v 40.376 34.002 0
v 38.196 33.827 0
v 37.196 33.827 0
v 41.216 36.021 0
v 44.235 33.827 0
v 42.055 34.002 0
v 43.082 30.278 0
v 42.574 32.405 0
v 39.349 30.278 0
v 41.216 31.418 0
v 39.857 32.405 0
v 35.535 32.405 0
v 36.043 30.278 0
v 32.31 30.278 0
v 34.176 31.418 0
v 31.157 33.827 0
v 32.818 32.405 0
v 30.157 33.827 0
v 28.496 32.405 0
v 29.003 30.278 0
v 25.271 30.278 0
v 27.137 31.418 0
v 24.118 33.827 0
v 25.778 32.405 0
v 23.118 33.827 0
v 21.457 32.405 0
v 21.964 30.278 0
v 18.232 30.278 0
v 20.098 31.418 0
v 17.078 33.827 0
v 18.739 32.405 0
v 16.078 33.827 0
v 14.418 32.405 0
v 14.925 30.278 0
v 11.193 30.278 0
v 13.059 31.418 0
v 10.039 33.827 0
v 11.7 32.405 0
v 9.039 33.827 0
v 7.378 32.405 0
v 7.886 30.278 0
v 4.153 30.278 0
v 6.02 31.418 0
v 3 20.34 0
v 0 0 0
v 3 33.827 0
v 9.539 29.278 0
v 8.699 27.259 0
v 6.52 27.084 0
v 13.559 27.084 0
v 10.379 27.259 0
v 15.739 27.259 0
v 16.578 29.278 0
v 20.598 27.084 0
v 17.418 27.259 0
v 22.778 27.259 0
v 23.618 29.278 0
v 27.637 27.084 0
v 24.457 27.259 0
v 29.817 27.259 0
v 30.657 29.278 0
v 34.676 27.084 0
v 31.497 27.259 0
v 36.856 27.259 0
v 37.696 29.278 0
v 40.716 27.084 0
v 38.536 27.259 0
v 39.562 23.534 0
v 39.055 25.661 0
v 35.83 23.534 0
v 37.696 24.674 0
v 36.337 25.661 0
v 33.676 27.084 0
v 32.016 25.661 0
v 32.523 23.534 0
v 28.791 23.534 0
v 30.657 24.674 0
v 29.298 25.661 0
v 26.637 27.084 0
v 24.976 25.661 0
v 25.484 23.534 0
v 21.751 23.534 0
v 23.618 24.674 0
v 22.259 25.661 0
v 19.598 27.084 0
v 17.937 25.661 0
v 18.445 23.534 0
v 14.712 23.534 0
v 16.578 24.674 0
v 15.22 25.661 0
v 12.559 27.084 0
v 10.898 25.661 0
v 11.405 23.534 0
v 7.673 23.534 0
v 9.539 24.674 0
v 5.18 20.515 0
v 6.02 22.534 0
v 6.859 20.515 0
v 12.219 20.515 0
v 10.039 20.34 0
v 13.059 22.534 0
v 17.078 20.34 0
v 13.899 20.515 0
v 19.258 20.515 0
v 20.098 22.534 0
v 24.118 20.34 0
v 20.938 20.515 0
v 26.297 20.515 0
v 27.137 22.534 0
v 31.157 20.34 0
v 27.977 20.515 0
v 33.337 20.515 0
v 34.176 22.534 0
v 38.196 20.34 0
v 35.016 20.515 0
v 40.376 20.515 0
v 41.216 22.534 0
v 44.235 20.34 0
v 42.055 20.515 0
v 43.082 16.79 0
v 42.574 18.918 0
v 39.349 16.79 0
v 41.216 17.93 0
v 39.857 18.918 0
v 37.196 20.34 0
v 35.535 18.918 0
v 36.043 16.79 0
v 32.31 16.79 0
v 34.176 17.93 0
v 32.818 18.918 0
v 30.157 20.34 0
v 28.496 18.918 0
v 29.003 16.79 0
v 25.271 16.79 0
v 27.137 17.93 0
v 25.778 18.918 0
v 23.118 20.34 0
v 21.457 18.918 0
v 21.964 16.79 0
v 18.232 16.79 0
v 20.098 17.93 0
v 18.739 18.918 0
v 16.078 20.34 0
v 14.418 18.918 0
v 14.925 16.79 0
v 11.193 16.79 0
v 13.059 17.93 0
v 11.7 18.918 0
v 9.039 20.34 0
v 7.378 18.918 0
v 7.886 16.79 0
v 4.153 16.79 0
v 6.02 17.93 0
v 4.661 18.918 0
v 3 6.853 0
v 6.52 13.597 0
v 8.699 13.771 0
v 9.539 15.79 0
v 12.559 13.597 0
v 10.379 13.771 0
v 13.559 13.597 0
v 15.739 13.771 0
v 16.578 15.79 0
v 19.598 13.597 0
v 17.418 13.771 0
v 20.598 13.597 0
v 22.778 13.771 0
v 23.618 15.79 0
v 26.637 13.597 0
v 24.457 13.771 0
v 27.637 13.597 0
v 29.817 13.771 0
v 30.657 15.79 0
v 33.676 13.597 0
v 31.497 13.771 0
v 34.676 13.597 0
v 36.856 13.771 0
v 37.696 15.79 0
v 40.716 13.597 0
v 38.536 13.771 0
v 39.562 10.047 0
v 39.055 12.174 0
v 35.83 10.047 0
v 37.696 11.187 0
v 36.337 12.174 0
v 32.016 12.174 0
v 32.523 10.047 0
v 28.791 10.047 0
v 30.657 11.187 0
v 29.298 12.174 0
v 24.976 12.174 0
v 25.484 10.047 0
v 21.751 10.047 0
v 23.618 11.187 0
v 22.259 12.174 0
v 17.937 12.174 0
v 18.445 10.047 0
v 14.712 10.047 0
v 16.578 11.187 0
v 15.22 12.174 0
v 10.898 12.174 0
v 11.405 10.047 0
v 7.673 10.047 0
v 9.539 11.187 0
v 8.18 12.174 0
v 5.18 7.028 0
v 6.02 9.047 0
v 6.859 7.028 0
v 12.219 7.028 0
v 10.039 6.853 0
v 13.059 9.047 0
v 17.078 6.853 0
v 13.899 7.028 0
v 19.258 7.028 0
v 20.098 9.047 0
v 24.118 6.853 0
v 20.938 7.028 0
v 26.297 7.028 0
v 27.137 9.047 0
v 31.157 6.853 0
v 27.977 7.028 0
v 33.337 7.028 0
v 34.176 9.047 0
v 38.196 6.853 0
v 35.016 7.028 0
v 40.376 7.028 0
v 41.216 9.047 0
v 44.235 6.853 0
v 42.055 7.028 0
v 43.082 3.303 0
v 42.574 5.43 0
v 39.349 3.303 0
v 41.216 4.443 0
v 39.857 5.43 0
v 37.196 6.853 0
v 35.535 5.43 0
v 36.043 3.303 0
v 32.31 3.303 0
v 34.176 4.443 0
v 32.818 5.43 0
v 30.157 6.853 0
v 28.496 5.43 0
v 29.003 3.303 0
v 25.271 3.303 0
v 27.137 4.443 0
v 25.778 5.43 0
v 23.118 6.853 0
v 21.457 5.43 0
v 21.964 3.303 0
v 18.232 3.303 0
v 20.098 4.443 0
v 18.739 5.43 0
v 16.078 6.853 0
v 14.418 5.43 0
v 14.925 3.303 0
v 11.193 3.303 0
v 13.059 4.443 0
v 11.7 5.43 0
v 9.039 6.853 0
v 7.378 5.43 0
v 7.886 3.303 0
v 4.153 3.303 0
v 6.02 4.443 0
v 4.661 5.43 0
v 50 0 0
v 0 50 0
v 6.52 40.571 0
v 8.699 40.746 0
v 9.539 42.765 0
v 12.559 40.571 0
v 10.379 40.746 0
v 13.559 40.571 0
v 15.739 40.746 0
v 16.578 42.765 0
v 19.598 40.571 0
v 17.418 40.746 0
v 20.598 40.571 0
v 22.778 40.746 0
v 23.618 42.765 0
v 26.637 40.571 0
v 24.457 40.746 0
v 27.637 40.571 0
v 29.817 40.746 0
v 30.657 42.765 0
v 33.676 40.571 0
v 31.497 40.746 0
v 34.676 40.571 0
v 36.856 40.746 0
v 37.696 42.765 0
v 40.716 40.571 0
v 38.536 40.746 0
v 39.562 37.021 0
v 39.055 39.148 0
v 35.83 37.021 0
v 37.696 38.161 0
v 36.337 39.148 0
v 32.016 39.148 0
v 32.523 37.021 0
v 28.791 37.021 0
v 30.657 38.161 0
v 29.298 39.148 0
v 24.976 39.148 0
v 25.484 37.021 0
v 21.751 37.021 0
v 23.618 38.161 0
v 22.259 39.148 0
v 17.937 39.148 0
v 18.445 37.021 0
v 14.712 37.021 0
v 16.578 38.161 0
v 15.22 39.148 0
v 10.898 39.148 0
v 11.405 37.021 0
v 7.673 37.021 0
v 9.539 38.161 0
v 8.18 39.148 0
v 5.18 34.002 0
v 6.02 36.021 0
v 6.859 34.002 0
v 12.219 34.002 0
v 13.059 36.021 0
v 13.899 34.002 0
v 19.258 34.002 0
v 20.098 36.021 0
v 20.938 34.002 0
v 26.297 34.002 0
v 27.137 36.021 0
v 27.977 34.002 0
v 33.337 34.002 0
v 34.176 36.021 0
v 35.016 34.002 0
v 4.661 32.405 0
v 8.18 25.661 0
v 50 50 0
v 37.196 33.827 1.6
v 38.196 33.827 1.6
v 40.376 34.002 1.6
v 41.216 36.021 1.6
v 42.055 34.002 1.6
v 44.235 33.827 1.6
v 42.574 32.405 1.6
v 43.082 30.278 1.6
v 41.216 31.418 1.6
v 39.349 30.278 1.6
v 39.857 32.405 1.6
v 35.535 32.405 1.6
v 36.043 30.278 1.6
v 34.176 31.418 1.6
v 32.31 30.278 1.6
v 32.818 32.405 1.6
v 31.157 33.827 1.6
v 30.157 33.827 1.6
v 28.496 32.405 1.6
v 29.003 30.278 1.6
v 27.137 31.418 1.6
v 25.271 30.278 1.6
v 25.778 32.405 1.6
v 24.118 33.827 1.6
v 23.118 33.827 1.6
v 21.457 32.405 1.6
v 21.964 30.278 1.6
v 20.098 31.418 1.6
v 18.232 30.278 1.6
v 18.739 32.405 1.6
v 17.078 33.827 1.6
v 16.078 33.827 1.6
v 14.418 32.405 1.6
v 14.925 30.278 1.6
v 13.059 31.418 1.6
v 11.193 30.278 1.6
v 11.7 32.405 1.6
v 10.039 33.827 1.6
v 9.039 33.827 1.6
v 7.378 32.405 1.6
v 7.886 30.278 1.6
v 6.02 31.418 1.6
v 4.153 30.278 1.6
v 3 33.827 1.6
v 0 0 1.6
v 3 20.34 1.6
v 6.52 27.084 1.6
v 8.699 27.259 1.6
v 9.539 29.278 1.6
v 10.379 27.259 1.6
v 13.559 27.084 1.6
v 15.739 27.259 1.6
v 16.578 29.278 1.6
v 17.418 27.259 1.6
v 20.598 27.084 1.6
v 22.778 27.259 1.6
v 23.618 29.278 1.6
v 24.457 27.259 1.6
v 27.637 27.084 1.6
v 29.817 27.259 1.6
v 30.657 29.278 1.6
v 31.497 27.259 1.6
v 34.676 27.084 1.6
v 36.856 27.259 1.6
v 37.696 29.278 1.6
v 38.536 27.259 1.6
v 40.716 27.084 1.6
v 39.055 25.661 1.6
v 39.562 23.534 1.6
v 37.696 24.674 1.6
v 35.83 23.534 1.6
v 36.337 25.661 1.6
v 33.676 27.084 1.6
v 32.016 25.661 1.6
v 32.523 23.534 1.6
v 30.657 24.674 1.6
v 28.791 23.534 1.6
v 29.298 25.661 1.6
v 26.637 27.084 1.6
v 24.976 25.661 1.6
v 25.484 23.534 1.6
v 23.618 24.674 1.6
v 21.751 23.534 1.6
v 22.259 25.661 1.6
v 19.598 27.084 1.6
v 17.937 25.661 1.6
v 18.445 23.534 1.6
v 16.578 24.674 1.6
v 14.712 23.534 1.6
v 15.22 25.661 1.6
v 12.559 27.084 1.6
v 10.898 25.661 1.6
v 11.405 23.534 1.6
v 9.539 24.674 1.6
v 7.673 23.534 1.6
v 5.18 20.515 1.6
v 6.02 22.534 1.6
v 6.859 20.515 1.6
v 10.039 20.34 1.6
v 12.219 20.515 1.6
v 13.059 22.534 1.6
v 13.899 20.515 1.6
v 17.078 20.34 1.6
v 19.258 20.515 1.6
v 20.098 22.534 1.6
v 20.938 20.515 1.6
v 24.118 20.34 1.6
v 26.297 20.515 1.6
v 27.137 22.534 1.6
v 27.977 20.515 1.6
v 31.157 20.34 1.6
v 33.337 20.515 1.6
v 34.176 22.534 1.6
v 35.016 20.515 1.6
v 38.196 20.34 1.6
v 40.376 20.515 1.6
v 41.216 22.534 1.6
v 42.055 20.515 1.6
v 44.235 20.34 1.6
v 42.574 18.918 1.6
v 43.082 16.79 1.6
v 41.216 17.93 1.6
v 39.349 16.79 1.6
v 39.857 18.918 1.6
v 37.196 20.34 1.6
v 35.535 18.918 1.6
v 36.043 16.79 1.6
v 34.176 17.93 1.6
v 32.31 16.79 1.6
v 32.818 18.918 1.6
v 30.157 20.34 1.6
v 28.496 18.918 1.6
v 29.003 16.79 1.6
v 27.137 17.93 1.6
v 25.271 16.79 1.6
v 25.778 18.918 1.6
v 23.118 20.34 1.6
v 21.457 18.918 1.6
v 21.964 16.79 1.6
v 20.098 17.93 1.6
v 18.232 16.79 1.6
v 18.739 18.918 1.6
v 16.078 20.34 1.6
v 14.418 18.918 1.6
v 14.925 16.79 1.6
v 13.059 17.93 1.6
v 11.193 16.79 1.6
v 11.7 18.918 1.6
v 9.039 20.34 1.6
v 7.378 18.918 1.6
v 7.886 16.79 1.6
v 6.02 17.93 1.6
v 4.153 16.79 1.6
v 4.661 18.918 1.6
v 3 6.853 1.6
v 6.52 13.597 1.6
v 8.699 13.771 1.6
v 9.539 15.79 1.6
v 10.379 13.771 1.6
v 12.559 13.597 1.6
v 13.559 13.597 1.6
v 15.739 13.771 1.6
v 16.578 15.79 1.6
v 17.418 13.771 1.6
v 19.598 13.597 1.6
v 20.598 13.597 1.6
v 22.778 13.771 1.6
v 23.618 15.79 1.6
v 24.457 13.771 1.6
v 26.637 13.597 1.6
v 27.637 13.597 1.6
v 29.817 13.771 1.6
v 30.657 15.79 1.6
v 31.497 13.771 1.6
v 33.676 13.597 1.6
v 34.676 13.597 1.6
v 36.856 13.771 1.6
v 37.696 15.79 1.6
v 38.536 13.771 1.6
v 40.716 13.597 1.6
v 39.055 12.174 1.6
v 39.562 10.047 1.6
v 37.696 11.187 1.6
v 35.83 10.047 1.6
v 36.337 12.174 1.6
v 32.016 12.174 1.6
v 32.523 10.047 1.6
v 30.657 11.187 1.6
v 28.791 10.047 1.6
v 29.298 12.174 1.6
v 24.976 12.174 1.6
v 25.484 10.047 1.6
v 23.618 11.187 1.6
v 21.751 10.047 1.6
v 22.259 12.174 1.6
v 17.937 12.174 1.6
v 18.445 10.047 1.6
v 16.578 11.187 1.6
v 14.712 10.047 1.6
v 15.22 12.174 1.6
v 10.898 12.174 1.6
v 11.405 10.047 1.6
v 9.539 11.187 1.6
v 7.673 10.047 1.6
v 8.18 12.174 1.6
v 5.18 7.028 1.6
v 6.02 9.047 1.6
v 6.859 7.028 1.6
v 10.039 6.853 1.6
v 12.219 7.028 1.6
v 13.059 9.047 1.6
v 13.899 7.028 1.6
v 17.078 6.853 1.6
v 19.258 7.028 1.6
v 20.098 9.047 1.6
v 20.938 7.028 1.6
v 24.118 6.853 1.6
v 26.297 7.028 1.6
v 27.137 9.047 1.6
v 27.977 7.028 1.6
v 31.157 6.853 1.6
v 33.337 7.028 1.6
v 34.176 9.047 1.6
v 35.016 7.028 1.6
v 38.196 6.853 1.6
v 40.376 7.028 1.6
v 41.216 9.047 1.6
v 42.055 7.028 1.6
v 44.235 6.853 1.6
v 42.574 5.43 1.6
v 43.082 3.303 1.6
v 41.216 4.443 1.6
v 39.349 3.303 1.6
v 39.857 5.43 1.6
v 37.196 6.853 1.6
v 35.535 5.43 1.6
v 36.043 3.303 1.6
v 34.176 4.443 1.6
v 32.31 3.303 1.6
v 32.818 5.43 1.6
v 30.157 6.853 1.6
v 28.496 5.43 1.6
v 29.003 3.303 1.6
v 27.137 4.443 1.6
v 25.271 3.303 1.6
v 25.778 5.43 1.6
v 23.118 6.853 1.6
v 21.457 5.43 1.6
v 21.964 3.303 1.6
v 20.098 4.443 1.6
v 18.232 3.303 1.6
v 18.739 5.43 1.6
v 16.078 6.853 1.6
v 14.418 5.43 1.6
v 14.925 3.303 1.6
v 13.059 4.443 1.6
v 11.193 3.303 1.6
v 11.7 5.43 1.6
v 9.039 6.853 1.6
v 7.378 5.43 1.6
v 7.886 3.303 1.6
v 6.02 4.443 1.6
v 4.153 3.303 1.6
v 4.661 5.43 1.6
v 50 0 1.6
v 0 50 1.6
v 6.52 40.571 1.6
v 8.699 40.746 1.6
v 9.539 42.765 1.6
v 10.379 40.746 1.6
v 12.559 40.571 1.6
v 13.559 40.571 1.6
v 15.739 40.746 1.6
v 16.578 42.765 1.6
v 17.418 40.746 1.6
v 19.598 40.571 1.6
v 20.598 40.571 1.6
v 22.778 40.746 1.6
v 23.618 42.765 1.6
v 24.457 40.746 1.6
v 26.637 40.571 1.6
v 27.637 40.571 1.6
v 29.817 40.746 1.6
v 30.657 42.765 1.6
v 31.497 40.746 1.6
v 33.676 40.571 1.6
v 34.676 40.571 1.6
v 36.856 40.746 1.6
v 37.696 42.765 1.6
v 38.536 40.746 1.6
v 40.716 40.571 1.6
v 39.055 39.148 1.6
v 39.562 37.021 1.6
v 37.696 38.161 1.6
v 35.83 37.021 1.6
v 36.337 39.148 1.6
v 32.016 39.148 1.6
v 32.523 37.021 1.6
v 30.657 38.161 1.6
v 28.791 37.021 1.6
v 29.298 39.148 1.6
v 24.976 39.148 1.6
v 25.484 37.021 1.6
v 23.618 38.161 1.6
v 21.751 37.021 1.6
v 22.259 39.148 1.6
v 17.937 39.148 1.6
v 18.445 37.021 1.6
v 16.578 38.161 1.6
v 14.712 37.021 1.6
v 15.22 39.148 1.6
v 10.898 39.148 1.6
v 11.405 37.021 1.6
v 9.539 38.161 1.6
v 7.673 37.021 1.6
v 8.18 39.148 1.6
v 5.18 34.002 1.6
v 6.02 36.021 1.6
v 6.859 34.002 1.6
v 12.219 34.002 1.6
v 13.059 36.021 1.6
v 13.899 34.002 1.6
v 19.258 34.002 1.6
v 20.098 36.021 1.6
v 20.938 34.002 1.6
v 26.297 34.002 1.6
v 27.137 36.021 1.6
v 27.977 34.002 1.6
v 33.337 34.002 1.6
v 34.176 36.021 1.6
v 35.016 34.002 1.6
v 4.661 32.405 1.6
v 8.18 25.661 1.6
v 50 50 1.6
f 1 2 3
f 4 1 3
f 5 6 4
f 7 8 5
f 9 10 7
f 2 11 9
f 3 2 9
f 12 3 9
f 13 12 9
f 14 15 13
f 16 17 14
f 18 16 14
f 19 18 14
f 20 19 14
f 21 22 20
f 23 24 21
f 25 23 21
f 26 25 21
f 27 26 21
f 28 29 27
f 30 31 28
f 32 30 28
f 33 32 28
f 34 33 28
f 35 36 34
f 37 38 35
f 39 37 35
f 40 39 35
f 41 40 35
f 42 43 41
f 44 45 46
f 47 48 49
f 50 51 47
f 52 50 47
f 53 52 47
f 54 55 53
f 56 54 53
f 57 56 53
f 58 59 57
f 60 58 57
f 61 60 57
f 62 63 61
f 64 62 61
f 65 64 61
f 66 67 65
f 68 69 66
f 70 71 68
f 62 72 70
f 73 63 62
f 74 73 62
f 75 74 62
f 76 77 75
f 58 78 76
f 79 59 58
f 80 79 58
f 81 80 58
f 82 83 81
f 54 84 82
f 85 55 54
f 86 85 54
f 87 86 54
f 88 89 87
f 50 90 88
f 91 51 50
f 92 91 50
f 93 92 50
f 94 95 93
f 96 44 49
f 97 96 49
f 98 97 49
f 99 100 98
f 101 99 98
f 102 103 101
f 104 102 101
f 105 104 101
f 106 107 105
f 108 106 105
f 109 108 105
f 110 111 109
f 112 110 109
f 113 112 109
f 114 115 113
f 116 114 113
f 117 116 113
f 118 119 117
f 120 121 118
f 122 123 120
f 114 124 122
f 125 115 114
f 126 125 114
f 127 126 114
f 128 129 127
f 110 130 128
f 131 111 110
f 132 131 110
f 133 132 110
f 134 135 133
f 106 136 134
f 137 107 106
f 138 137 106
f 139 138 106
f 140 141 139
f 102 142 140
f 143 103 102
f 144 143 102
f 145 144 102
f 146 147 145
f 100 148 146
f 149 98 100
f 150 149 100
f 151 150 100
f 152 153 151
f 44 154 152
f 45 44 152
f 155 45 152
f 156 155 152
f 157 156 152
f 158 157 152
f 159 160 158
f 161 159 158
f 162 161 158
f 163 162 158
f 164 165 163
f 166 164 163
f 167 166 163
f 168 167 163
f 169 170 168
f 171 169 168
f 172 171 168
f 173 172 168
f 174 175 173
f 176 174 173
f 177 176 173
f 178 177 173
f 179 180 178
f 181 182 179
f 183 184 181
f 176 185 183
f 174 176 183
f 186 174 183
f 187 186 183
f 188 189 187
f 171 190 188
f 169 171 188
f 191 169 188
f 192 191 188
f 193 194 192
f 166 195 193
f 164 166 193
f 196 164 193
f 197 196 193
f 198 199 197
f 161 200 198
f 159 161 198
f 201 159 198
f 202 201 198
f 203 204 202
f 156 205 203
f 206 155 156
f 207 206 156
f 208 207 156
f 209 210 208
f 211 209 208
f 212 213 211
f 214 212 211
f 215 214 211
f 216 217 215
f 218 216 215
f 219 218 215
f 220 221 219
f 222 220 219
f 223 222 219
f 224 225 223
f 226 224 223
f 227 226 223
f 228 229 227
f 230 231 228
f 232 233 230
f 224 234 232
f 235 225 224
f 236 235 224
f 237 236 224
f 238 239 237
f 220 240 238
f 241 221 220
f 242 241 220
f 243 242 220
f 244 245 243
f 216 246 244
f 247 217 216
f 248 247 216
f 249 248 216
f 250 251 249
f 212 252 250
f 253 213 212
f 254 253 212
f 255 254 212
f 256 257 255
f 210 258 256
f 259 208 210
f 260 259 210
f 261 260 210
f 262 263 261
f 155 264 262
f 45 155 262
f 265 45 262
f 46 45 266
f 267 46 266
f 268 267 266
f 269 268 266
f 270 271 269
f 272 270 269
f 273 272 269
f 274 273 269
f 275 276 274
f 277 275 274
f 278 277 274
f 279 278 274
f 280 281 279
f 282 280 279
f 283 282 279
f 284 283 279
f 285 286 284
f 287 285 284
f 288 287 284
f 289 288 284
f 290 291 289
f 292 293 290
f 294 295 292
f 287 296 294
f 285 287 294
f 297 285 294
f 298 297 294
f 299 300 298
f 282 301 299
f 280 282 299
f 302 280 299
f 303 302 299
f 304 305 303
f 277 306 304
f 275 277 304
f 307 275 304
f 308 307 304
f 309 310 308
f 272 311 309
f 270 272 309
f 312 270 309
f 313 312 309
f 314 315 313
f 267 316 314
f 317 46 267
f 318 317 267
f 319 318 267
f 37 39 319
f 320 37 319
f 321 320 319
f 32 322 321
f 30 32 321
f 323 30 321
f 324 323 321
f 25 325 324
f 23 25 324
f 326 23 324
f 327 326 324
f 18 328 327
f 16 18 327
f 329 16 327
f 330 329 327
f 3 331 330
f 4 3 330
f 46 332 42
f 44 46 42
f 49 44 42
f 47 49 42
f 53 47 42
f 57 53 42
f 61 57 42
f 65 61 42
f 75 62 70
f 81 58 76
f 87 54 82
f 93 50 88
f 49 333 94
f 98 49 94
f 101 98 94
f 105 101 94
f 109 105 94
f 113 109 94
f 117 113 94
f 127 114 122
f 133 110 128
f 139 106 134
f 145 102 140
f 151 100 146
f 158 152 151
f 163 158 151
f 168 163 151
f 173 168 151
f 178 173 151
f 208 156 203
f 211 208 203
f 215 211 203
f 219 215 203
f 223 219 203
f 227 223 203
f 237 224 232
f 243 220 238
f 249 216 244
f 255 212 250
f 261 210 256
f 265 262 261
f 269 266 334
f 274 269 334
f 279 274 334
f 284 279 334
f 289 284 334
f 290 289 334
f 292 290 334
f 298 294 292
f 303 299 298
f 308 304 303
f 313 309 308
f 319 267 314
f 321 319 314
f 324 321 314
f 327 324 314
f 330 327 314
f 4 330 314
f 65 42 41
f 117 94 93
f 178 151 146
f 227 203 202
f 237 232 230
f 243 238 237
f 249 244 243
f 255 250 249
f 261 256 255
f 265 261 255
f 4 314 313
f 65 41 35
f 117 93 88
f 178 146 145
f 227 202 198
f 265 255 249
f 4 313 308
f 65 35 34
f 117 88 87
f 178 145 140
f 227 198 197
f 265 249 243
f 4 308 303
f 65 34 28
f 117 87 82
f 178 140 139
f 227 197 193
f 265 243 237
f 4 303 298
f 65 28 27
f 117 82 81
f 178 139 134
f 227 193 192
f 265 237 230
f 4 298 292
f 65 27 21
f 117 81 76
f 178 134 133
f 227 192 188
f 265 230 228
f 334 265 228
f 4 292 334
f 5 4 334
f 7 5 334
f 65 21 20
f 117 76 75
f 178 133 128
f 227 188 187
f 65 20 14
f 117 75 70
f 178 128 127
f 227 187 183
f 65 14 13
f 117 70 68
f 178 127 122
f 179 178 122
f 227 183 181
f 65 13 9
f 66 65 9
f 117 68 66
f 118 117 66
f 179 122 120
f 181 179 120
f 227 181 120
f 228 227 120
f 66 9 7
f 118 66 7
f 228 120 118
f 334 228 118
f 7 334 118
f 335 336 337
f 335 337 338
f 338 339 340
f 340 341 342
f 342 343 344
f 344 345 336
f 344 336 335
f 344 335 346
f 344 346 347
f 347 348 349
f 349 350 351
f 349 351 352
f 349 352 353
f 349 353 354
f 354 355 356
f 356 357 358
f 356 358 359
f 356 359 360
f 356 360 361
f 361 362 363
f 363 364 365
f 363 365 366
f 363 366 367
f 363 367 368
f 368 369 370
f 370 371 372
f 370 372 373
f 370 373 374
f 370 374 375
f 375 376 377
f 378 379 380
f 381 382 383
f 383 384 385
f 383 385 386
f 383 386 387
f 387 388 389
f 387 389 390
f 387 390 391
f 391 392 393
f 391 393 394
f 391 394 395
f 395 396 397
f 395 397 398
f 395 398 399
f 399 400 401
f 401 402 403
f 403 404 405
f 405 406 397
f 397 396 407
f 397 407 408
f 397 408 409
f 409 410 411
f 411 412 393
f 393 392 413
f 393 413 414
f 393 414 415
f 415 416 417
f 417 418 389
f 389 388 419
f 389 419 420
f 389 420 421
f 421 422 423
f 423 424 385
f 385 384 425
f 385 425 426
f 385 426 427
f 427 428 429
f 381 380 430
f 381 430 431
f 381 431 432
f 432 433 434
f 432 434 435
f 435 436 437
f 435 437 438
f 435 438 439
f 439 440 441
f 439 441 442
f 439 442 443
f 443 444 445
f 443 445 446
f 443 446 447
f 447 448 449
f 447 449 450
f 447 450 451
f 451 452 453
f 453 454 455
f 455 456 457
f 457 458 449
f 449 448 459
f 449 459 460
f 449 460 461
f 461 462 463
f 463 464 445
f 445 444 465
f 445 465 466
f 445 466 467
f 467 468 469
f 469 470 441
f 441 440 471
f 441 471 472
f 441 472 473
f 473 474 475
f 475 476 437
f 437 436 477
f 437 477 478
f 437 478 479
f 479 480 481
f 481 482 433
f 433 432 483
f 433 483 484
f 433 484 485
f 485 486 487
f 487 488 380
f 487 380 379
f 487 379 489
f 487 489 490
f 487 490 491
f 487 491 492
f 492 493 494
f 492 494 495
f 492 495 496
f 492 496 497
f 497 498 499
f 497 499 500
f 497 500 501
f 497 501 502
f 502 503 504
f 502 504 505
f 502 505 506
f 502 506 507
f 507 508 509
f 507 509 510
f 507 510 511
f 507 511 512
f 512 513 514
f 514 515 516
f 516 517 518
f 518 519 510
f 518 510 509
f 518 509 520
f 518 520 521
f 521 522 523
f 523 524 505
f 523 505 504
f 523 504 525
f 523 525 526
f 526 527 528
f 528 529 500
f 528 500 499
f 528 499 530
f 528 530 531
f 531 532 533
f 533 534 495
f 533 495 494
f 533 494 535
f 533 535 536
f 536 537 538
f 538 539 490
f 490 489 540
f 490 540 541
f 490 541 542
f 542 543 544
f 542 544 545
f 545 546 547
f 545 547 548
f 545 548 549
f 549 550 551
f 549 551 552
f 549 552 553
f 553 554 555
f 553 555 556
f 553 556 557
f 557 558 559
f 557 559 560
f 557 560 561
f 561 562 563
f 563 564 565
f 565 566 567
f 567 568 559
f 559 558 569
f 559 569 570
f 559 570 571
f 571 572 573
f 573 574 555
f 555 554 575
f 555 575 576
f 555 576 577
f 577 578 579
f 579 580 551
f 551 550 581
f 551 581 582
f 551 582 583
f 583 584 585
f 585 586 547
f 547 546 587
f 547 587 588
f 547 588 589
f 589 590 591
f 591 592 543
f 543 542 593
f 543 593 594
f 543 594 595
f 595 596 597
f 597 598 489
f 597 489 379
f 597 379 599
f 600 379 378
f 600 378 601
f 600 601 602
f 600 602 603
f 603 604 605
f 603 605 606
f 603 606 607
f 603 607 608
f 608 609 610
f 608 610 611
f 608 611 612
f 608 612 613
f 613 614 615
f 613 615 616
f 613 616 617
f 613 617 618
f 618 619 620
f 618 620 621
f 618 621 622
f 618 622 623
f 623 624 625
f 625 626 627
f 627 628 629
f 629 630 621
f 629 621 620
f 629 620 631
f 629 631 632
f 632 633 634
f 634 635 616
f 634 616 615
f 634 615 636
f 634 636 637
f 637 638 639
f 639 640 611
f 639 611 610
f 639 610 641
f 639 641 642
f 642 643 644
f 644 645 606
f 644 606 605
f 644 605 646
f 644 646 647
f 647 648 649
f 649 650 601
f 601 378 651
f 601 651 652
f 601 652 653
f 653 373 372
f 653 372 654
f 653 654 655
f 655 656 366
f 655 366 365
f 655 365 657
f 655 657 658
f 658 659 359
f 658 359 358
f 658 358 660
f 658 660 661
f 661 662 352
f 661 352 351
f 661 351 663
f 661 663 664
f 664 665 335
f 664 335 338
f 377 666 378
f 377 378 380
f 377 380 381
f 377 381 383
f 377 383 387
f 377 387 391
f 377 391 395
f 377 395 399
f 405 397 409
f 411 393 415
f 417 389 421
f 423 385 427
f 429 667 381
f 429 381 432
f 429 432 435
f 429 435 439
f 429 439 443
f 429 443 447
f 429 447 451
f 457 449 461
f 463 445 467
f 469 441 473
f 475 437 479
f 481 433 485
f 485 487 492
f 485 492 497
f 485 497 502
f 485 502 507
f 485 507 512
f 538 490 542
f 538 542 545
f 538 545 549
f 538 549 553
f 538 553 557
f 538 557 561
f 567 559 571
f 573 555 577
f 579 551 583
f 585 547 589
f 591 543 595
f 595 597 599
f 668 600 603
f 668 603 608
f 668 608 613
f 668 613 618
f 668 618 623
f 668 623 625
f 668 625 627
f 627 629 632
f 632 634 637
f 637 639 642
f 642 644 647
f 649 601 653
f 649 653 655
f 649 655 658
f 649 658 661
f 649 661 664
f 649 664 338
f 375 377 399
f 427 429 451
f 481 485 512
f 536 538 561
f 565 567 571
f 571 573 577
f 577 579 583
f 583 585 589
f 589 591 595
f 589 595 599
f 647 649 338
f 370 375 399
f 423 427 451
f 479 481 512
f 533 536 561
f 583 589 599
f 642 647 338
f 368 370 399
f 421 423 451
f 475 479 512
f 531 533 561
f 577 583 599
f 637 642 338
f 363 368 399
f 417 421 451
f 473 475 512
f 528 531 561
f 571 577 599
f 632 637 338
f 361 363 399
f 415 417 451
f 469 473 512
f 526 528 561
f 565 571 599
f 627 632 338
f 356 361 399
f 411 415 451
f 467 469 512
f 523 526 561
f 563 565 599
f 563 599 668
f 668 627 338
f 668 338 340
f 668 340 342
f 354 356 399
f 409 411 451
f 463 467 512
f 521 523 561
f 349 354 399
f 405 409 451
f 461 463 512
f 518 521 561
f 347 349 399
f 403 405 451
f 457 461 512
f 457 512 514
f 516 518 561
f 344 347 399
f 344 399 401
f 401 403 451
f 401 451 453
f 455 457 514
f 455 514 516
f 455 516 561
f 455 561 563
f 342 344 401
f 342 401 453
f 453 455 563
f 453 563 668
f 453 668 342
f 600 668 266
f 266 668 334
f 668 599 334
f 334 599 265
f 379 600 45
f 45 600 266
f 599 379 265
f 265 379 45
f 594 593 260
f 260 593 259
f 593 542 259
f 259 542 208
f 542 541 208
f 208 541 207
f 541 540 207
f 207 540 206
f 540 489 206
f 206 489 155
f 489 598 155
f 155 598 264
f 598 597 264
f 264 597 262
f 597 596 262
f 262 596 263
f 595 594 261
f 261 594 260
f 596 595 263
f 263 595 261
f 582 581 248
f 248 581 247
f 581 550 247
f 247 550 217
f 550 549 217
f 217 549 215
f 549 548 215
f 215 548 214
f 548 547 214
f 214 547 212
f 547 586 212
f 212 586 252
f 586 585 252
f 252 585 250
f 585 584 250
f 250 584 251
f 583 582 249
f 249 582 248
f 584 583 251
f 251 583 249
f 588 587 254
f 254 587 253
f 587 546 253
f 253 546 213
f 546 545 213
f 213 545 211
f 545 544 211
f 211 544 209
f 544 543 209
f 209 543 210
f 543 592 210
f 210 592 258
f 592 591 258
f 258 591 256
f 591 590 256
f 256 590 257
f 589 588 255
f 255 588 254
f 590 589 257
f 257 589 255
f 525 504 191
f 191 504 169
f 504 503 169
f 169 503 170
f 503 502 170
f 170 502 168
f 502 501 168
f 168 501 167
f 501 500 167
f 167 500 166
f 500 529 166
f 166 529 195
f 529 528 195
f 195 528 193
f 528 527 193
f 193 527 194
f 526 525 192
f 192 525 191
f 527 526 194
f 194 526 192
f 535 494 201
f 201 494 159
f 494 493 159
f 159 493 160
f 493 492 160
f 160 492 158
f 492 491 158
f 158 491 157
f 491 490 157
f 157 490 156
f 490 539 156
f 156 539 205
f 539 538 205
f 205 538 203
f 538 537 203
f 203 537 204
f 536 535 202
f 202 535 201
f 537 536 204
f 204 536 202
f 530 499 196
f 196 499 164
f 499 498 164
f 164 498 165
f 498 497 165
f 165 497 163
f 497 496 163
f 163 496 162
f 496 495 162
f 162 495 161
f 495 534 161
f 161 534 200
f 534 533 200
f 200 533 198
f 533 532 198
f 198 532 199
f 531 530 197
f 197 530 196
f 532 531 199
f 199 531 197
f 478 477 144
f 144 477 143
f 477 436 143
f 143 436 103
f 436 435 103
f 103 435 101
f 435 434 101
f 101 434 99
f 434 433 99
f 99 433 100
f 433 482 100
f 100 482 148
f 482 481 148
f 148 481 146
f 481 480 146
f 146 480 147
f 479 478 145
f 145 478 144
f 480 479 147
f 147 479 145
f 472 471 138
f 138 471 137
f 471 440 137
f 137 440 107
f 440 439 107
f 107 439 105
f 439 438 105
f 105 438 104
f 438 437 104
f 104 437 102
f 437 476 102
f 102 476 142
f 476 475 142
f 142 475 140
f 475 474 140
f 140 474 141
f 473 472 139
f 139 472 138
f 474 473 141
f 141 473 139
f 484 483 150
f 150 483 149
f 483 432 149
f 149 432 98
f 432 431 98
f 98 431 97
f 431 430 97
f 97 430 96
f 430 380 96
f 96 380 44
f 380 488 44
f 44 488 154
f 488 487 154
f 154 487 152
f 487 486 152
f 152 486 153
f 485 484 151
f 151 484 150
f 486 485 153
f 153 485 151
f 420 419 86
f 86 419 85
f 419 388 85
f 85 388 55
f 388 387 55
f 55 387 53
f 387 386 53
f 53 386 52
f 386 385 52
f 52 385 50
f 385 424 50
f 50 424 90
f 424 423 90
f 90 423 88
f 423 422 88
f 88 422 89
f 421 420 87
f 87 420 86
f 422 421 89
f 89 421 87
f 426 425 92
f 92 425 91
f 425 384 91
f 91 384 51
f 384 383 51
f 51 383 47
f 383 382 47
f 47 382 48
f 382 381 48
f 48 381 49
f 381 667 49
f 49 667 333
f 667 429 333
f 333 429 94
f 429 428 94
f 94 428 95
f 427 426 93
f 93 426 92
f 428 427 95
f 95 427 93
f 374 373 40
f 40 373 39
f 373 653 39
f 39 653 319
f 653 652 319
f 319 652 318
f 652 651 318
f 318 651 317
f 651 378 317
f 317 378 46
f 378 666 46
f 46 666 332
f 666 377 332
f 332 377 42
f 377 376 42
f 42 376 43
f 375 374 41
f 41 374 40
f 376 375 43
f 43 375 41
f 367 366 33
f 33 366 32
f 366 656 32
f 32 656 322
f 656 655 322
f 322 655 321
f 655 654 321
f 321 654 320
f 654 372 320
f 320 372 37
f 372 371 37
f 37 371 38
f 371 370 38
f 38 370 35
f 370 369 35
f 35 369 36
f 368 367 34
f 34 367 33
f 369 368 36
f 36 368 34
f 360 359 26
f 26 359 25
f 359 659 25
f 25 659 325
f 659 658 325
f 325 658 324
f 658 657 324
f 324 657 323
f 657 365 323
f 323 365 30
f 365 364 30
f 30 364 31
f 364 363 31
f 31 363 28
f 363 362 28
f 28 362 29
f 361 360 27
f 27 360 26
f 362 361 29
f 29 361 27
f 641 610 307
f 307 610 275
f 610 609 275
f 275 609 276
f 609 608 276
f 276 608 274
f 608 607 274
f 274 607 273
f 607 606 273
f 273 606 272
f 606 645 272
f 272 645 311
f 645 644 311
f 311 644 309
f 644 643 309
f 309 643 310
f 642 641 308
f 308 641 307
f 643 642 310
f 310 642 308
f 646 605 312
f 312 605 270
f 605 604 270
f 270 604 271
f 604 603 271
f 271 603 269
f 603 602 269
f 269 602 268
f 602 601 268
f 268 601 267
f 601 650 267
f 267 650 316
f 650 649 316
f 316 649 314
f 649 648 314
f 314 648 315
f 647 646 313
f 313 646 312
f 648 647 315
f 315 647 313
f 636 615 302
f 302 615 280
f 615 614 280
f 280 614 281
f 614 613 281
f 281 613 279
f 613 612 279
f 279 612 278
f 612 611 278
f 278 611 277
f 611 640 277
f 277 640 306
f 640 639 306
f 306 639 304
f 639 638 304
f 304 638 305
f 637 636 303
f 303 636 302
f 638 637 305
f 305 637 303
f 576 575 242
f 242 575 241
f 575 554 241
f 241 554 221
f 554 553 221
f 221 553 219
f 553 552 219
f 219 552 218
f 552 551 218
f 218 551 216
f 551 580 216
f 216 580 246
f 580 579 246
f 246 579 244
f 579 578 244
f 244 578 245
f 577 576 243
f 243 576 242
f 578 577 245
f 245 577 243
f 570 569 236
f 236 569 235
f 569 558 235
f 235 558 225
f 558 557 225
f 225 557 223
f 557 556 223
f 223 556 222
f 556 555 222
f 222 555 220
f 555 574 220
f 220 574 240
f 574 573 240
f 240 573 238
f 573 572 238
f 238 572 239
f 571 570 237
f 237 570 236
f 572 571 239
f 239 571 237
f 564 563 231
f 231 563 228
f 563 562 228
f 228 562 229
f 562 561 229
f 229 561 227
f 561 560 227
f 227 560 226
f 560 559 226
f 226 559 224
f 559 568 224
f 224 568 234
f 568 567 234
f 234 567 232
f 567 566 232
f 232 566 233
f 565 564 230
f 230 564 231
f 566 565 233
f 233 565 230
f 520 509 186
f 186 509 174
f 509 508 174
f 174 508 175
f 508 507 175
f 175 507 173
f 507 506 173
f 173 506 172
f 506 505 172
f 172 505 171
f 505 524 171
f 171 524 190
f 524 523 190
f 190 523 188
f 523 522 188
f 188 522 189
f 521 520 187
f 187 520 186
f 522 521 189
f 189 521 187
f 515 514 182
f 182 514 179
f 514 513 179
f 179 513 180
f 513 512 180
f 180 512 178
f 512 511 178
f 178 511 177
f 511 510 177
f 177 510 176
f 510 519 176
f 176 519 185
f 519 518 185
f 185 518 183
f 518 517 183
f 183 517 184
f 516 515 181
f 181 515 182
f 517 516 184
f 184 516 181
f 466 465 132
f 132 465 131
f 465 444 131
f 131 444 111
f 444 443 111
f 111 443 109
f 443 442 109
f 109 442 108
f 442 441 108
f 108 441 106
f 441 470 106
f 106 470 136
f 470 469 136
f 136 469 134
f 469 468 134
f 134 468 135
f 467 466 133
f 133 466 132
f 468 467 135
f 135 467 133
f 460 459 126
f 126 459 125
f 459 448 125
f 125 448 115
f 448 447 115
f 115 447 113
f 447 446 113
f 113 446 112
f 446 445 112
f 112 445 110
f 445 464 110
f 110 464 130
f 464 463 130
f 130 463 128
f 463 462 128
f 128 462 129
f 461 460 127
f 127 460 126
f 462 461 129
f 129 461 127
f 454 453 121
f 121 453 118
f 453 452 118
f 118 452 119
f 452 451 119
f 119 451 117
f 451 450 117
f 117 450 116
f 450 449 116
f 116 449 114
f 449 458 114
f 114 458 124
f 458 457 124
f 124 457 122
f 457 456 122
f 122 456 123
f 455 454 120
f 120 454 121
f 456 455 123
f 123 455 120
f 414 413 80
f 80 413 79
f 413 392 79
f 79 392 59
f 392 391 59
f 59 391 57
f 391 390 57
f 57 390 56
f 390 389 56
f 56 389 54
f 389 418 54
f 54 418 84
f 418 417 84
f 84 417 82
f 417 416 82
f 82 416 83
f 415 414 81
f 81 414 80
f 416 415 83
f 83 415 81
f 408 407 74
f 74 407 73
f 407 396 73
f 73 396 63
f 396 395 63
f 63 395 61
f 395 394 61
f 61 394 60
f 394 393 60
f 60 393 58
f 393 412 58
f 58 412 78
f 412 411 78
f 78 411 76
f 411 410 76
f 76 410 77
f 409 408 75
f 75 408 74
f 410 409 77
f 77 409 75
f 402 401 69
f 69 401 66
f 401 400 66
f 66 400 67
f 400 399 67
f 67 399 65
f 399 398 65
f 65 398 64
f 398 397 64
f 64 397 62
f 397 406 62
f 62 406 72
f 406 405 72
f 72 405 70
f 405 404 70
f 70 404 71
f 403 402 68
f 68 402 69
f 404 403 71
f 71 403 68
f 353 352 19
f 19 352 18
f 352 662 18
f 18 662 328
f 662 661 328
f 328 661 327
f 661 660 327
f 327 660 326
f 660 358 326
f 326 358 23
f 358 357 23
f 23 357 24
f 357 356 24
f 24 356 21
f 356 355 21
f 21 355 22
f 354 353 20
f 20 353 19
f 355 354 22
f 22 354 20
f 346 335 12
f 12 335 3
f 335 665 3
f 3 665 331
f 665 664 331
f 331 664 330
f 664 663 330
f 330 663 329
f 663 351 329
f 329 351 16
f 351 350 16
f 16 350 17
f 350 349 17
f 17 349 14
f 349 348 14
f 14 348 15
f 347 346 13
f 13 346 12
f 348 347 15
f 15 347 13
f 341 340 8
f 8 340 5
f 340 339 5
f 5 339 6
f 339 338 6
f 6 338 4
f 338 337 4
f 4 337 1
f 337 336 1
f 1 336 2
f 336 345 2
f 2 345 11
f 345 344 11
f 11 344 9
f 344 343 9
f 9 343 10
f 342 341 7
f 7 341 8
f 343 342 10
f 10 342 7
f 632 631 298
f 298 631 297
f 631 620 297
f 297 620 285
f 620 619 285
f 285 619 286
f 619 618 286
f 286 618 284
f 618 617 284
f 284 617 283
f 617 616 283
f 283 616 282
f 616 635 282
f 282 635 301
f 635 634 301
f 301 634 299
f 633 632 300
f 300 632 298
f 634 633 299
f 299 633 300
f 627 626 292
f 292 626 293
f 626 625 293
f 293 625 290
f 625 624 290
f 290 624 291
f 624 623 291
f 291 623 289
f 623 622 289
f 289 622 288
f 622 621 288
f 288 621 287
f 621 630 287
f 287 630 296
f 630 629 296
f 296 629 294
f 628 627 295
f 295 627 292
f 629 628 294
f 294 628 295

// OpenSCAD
// STAR-1/4: 1/4 in star (shape punch, realisation punched) NOMINAL size, measure before use
// hole: star {"outer_d": 6.35}; inscribed 2.852 mm; 33 holes; open area 0.227; spec hash 98d7439d8fce7c2c
plate = 50.0; thickness = 1.6;
hole = [[0.0000, 3.1750], [-0.8398, 1.1559], [-3.0196, 0.9811], [-1.3588, -0.4415], [-1.8662, -2.5686], [-0.0000, -1.4287], [1.8662, -2.5686], [1.3588, -0.4415], [3.0196, 0.9811], [0.8398, 1.1559]];
centres = [[6.0196, 5.8718], [13.0588, 5.8718], [20.098, 5.8718], [27.1372, 5.8718], [34.1764, 5.8718], [41.2156, 5.8718], [9.5392, 12.6154], [16.5784, 12.6154], [23.6176, 12.6154], [30.6568, 12.6154], [37.696, 12.6154], [6.0196, 19.3591], [13.0588, 19.3591], [20.098, 19.3591], [27.1372, 19.3591], [34.1764, 19.3591], [41.2156, 19.3591], [9.5392, 26.1027], [16.5784, 26.1027], [23.6176, 26.1027], [30.6568, 26.1027], [37.696, 26.1027], [6.0196, 32.8463], [13.0588, 32.8463], [20.098, 32.8463], [27.1372, 32.8463], [34.1764, 32.8463], [41.2156, 32.8463], [9.5392, 39.59], [16.5784, 39.59], [23.6176, 39.59], [30.6568, 39.59], [37.696, 39.59]];
difference() {
  cube([plate, plate, thickness]);
  for (c = centres) translate([c[0], c[1], -1]) linear_extrude(thickness + 2) polygon(hole);
}
